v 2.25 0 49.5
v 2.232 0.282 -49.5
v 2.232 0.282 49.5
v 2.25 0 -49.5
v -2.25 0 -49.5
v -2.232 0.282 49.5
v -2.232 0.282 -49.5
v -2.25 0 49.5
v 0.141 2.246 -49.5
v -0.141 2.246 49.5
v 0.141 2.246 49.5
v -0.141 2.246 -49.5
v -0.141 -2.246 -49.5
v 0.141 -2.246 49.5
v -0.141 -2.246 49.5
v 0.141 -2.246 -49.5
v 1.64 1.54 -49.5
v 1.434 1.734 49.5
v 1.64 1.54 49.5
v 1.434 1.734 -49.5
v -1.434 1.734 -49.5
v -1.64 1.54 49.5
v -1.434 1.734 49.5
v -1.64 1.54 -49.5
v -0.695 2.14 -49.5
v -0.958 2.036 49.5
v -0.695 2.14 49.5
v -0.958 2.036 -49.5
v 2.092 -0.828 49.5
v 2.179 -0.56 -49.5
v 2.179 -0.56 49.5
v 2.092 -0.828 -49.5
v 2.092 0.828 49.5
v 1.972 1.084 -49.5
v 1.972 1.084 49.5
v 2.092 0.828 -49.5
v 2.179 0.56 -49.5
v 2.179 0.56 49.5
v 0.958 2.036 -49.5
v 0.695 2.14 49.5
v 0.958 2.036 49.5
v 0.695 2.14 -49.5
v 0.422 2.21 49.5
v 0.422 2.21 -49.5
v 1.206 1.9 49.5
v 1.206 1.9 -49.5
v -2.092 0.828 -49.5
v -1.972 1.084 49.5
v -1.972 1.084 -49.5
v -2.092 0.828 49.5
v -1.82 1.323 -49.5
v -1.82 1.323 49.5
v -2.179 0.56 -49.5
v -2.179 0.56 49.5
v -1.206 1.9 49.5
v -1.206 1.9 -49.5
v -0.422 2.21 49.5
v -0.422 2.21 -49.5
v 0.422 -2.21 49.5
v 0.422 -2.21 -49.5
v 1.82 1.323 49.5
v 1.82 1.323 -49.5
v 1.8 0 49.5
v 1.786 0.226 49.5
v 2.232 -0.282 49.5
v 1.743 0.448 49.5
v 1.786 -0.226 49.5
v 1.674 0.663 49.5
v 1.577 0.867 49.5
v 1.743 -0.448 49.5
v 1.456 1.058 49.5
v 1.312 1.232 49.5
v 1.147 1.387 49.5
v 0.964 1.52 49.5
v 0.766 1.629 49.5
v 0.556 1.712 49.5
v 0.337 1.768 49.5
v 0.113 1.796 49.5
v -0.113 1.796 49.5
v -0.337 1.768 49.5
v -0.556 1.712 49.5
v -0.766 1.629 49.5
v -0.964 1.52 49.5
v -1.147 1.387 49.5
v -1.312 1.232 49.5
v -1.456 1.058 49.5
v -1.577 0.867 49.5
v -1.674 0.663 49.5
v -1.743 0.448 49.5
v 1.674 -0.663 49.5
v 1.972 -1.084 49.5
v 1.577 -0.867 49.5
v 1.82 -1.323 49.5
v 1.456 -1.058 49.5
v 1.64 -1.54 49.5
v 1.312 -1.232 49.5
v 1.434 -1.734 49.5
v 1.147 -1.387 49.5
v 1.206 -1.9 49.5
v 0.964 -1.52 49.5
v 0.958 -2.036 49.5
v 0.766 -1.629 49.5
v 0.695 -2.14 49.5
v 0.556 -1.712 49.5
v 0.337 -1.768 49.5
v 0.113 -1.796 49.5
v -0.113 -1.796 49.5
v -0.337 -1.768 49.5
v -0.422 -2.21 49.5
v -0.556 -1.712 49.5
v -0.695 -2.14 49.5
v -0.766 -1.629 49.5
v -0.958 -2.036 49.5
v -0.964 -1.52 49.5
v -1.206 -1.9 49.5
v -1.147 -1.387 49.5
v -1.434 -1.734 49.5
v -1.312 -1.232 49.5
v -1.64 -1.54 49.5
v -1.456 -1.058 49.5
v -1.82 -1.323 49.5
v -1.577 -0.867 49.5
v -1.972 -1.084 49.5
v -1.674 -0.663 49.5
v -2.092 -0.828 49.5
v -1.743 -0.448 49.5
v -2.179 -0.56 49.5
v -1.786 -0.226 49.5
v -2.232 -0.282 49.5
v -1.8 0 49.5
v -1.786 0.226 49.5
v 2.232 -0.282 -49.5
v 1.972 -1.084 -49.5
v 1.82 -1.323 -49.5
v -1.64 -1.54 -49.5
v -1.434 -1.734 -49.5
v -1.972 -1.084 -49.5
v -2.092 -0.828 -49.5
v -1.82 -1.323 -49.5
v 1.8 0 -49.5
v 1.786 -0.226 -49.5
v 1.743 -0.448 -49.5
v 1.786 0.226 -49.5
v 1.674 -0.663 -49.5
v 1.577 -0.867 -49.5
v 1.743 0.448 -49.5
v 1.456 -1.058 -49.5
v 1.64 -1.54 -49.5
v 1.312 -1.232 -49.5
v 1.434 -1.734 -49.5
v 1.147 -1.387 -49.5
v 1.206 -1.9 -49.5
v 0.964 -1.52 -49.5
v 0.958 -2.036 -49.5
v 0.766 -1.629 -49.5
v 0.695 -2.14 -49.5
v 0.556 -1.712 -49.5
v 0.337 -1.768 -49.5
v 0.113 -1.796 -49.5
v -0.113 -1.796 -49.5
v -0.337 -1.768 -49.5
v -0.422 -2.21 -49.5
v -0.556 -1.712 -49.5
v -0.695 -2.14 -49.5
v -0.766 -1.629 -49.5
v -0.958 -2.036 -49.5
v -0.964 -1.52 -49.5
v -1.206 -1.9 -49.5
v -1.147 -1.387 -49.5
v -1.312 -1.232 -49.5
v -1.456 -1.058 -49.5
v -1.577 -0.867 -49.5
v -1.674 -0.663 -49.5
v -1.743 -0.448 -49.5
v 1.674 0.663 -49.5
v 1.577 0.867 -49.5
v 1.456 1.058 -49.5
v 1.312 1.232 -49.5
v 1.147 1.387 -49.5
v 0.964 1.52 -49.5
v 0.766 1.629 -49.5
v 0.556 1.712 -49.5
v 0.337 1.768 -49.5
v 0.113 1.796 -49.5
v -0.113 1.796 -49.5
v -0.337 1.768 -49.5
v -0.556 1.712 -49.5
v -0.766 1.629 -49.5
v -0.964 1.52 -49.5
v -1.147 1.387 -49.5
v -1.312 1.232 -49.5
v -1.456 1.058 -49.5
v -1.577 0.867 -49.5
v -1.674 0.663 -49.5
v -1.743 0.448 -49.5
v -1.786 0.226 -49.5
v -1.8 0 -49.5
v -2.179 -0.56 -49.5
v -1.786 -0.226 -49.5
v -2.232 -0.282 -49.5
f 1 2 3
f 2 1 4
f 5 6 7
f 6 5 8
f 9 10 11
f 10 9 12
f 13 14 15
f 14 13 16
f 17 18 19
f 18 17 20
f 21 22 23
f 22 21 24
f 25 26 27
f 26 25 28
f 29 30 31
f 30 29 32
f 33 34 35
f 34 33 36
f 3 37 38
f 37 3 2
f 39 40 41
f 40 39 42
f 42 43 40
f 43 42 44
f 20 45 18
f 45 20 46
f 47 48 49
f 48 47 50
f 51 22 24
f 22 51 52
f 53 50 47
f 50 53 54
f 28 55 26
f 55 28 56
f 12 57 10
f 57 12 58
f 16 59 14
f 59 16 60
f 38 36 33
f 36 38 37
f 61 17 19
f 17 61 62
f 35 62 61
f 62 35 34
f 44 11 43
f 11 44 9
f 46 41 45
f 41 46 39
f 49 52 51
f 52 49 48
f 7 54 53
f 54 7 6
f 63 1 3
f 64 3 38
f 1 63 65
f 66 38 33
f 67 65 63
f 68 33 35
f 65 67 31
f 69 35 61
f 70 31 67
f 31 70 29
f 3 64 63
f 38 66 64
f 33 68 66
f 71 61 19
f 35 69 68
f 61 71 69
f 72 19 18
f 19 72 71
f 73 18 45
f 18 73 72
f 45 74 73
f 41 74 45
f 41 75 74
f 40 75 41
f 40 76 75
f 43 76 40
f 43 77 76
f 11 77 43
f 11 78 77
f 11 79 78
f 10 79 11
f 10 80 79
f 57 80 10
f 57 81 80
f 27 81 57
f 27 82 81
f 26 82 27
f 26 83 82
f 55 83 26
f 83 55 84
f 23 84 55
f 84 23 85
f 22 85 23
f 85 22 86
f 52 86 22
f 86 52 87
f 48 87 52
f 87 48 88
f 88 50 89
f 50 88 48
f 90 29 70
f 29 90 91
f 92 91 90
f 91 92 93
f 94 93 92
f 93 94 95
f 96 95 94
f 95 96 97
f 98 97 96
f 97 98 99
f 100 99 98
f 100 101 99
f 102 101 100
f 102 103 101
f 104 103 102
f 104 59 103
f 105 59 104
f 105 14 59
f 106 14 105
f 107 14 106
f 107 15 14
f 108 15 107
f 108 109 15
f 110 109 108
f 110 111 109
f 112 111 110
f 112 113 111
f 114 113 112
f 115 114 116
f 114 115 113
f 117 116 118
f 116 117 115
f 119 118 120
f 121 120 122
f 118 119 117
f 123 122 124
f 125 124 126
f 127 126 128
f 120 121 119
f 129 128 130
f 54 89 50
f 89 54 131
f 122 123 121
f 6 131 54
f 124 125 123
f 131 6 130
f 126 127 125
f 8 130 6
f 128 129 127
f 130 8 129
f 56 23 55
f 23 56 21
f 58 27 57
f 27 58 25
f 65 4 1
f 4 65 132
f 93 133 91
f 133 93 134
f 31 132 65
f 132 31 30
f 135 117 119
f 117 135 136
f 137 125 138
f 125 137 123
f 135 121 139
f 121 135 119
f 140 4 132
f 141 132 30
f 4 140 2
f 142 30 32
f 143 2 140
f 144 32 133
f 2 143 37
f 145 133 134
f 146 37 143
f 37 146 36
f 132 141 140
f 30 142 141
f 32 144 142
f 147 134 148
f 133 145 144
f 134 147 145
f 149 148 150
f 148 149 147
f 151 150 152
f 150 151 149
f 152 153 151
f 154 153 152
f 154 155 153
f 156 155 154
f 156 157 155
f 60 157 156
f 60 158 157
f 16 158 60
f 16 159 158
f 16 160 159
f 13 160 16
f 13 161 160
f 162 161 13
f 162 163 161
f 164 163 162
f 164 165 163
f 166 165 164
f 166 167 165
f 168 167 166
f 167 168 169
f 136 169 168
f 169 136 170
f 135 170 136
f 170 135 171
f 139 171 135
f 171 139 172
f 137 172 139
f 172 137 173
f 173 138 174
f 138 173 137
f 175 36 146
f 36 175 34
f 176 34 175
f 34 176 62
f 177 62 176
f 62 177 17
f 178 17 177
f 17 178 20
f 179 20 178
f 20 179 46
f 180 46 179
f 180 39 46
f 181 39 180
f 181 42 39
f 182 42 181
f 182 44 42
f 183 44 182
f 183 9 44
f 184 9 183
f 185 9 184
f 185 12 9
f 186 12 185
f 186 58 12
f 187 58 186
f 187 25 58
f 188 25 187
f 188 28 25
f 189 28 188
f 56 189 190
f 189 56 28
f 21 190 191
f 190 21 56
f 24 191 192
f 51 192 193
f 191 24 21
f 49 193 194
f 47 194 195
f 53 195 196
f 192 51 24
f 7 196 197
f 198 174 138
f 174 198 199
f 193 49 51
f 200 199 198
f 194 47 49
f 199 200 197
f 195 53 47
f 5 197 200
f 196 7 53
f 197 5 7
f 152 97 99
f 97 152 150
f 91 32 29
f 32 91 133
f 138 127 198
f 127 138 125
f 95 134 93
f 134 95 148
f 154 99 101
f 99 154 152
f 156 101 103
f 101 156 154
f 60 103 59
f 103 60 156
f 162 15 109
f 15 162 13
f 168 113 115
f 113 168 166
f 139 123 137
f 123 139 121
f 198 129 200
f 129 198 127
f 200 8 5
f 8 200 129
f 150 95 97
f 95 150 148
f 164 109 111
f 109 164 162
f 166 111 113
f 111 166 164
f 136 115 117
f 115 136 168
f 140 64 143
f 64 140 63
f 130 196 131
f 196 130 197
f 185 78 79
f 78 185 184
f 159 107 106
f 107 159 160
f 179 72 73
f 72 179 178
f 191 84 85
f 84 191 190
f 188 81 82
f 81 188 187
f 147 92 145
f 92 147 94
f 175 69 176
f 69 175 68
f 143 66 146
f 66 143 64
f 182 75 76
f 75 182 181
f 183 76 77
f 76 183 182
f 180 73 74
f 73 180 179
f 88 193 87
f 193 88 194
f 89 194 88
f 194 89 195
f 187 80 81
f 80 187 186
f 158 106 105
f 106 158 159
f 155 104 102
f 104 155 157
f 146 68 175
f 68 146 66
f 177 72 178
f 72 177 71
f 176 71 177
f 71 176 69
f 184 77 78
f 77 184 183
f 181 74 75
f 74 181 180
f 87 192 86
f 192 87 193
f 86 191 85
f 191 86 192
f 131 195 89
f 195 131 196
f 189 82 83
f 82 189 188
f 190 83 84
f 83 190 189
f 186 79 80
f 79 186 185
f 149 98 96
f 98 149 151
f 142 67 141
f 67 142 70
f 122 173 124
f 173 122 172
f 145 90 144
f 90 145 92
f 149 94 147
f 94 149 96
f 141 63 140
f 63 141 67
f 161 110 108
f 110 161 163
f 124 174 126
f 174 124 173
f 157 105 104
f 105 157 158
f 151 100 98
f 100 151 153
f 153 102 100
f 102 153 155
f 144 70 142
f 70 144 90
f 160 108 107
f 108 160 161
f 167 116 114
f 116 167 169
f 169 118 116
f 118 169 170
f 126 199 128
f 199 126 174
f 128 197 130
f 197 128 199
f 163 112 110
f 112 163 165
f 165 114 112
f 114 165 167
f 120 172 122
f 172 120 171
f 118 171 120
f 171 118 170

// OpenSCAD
$fn = 50;


difference() {
	union() {
		translate(v = [0, 0, -49.5000000000]) {
			cylinder(h = 99, r = 2.2500000000);
		}
	}
	union() {
		translate(v = [0, 0, -100.0000000000]) {
			cylinder(h = 200, r = 1.8000000000);
		}
	}
}
